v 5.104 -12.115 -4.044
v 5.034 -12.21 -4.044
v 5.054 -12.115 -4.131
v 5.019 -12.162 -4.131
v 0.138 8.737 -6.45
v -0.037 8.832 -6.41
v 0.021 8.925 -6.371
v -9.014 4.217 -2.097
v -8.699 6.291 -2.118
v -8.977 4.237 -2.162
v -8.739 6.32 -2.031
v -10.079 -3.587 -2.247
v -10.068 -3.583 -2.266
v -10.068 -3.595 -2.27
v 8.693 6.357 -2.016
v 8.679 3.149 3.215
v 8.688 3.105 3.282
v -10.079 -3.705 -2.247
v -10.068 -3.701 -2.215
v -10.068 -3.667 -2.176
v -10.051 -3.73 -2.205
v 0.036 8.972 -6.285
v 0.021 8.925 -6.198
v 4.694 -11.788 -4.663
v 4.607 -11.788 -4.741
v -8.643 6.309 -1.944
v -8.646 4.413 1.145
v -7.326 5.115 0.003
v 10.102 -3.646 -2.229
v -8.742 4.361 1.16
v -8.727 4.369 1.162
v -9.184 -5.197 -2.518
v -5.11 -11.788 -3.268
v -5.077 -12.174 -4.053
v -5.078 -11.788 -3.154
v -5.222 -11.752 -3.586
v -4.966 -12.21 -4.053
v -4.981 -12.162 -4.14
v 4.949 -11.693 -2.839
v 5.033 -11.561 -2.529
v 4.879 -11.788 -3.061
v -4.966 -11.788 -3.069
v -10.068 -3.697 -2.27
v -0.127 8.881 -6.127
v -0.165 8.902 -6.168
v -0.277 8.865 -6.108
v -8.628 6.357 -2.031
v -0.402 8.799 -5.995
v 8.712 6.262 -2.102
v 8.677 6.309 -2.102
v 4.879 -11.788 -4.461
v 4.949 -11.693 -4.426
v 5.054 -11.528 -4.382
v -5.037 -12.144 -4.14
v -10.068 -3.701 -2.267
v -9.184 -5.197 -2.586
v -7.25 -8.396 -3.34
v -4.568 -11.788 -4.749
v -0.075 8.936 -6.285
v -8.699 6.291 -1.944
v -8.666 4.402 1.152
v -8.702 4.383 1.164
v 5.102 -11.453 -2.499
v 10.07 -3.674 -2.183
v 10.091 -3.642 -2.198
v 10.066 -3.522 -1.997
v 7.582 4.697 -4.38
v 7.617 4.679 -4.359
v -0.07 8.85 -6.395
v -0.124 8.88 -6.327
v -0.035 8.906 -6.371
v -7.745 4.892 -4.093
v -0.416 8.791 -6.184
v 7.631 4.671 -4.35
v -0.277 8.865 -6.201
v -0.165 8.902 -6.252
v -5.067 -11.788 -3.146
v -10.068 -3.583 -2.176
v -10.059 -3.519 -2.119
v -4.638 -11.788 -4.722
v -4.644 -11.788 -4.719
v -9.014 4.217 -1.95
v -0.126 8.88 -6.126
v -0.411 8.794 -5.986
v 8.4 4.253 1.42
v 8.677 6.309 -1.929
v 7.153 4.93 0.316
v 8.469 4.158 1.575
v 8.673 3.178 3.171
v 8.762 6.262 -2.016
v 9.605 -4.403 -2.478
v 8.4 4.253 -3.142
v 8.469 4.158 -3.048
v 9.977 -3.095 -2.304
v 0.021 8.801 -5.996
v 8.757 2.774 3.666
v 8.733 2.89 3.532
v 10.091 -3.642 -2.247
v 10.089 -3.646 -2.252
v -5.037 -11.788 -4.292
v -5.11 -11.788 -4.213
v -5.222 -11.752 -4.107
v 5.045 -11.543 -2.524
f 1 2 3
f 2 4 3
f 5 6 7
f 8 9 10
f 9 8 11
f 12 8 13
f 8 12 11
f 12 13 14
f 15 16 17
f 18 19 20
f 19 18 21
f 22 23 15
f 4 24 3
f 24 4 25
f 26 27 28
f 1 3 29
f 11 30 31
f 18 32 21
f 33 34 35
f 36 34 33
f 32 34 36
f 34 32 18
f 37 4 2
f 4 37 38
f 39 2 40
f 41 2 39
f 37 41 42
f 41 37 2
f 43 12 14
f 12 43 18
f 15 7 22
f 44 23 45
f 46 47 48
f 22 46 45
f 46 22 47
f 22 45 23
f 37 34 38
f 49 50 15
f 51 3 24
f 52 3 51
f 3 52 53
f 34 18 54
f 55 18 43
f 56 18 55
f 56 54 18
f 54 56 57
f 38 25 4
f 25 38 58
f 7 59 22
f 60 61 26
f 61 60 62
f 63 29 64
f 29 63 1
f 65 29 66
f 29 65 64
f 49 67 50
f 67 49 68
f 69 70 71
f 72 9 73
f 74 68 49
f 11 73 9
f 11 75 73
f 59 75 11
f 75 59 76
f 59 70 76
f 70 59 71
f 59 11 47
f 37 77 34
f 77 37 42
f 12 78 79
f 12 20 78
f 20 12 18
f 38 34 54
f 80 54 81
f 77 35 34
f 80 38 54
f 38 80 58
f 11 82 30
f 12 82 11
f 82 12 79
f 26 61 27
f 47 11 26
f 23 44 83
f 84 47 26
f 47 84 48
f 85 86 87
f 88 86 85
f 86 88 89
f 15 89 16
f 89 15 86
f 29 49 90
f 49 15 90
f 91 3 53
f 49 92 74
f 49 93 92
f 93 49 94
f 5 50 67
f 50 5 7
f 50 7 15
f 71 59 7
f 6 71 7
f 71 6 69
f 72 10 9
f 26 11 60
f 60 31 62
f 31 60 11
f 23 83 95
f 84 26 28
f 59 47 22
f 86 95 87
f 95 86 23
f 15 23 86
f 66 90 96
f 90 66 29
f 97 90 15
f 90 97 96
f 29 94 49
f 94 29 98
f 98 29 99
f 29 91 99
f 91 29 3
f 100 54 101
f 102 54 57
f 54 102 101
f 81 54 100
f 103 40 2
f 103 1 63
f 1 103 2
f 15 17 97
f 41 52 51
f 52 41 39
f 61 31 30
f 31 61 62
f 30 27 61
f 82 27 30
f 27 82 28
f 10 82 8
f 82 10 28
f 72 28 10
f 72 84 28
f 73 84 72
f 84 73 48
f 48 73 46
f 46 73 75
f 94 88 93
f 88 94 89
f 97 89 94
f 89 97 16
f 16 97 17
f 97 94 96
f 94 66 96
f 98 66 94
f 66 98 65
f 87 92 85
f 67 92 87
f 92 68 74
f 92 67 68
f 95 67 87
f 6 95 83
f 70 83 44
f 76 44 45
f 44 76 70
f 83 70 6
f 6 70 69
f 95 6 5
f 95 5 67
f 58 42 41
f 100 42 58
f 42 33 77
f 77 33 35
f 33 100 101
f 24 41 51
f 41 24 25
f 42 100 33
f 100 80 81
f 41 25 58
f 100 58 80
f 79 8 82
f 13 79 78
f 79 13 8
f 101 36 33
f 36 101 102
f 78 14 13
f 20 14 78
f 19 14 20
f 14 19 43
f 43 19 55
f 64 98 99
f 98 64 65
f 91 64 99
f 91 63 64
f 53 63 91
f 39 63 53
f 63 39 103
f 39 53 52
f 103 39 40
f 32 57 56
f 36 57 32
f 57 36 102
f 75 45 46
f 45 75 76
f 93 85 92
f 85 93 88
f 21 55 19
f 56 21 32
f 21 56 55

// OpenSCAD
// Auto-generated OpenSCAD file

    inner_points = 10*[[-0.9987270749614695, -0.364205811638524, -0.4436890860803185], [0.9991182313764295, -0.36420581163853794, -0.35087673806764436], [-0.4844601077687184, 0.4409094125179242, -0.7391869071989888], [-0.5140713889852709, -1.1693210357949793, -0.10178509095531102], [0.5144625454002312, 0.4409094125179172, -0.6927807331926518], [0.4848512641836786, -1.1693210357949864, -0.055378916948973976], [-0.8932613027512826, 0.41583146142721766, 0.17309193139693055], [-0.9103573839327088, -0.513835521363569, 0.5410960415871743], [0.8369234853688419, 0.41583146142720556, 0.25346978256078845], [0.8198274041874156, -0.5138355213635811, 0.6214738927510323], [-0.019620868100507078, 0.8806649528226049, 0.029278801883737618], [-0.0538130304633598, -0.9786690127589686, 0.7652870222642252], [-0.46897543145439324, -0.933375714707972, -1.0725044943214548], [0.5299472217145562, -0.9333757147079789, -1.0260983203151177], [0.04529153573835777, -0.12826049055152355, -1.3680023154401253]];

    outer_points = 10*[[-0.9998038282183614, -0.36459847125866063, -0.22466188312211807], [1.0001954063490741, -0.36459847125866063, -0.22291210322967533], [-0.499158278691538, 0.08842950542533667, -0.9623065713566289], [-0.500449760461467, -0.8176264479426579, 0.513857695058614], [0.5008413385921798, 0.08842950542533667, -0.9614316814104075], [0.4995498568222507, -0.8176264479426579, 0.5147325850048354], [-0.8658480427340112, 0.626154295547598, -0.20310260203452007], [-0.8665936800815331, 0.10304264696972326, 0.6491612345484268], [0.8662021019508204, 0.626154295547598, -0.20158724819663343], [0.8654564646032984, 0.10304264696972326, 0.6506765883863135], [0.0005498482821656634, 0.8877101198365354, -0.6284768434070501], [-0.0009414264128783963, -0.1585131773192141, 1.0760508297588436], [-0.4996455845307593, -1.2114785717593914, -0.4053157694550875], [0.5003540327529584, -1.2114785717593914, -0.4044408795088661], [0.0009999649960640952, -0.7584505950753941, -1.1429604576895982]];

    // Convex hull for inner set (I)
    module inner_hull() {
        hull() {
            for (p = inner_points) {
                translate(p) sphere(r=0.1);
            }
        }
    }

    // Convex hull for outer set (O) minus inner hull (O \ I)
    module outer_minus_inner() {
        difference() {
            hull() {
                for (p = outer_points) {
                    translate(p) sphere(r=0.1);
                }
            }
            inner_hull(); // Subtract inner hull
        }
    }

    // Convex hull for outer set (O) minus all translated inner hulls
    module outer_minus_AllTranslationInner() {
        difference() {
            hull() {
                for (p = outer_points) {
                    translate(p) sphere(r=0.1);
                }
            }
            hull() {
                translate([0,0,50]) inner_hull();
                translate([0,0,-50]) inner_hull();
            }; // Subtract translated inner hulls
        }
    }

    // Difference between outer_minus_inner and outer_minus_AllTranslationInner
    module outer_minus_inner_diff() {
        difference() {
            // Outer minus inner
            difference() {
                hull() {
                    for (p = outer_points) {
                        translate(p) sphere(r=0.1);
                    }
                }
                inner_hull();
            }

            // Subtract Outer minus AllTranslationInner
            difference() {
                hull() {
                    for (p = outer_points) {
                        translate(p) sphere(r=0.1);
                    }
                }
                hull() {
                    translate([0,0,50]) inner_hull();
                    translate([0,0,-50]) inner_hull();
                };
            }
        }
    }

    // Rendering all with colors applied
    color([0, 1, 0, 1]) outer_minus_AllTranslationInner(); // Opaque green
    
